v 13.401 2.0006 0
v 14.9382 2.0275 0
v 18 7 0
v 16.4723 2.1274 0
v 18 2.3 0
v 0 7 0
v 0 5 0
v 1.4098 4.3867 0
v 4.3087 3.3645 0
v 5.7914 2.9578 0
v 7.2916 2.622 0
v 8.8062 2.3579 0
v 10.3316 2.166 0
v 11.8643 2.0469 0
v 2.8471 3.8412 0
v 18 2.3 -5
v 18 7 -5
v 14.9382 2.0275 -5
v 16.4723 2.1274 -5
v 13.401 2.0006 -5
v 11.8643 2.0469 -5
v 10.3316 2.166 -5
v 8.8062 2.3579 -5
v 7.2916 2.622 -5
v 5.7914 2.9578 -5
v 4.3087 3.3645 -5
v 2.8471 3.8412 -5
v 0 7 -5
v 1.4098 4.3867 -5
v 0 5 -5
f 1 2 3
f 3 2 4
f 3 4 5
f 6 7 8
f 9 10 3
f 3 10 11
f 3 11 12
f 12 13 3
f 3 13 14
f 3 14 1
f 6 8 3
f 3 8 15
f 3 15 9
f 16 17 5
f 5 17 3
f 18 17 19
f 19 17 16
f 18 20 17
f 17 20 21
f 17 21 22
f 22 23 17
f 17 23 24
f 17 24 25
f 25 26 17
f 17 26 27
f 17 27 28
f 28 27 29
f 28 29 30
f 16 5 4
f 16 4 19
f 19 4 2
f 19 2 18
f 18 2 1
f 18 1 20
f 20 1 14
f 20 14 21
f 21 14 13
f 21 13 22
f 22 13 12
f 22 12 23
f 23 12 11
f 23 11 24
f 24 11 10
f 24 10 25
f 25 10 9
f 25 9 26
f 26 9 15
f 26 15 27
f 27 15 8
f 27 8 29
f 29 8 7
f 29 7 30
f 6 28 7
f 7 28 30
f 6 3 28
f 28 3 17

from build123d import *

# Parameters (mm, degrees)
SKETCH2_W           = 18
SKETCH2_H           = 5
BOSS_EXTRUDE1_DEPTH = 5
CUT_EXTRUDE1_DEPTH  = 20.339079606
SKETCH4_W           = 18
SKETCH4_H           = 5
BOSS_EXTRUDE2_DEPTH = 2


with BuildPart() as part:
    # Sketch2 → Boss-Extrude1 (new body)
    with BuildSketch(Plane(origin=(0, 0, 0), x_dir=(1, 0, 0), z_dir=(0, 1, 0))):
        with Locations((9, 2.5)):
            Rectangle(SKETCH2_W, SKETCH2_H)
    extrude(amount=BOSS_EXTRUDE1_DEPTH)

    # Sketch3 → Cut-Extrude1 (cut, through all)
    with BuildSketch(Plane.XY):
        with BuildLine():
            Line((0, 5), (0, 0))
            Line((0, 0), (18, 0))
            Line((18, 0), (18, 2.3))
            ThreePointArc((18, 2.3), (8.806182909, 2.357886062), (0, 5))
        make_face()
    extrude(amount=-CUT_EXTRUDE1_DEPTH, mode=Mode.SUBTRACT)

    # Sketch4 → Boss-Extrude2 (add)
    with BuildSketch(Plane(origin=(0, 5, 0), x_dir=(1, 0, 0), z_dir=(0, 1, 0))):
        with Locations((9, 2.5)):
            Rectangle(SKETCH4_W, SKETCH4_H)
    extrude(amount=BOSS_EXTRUDE2_DEPTH)


solid = part.part
